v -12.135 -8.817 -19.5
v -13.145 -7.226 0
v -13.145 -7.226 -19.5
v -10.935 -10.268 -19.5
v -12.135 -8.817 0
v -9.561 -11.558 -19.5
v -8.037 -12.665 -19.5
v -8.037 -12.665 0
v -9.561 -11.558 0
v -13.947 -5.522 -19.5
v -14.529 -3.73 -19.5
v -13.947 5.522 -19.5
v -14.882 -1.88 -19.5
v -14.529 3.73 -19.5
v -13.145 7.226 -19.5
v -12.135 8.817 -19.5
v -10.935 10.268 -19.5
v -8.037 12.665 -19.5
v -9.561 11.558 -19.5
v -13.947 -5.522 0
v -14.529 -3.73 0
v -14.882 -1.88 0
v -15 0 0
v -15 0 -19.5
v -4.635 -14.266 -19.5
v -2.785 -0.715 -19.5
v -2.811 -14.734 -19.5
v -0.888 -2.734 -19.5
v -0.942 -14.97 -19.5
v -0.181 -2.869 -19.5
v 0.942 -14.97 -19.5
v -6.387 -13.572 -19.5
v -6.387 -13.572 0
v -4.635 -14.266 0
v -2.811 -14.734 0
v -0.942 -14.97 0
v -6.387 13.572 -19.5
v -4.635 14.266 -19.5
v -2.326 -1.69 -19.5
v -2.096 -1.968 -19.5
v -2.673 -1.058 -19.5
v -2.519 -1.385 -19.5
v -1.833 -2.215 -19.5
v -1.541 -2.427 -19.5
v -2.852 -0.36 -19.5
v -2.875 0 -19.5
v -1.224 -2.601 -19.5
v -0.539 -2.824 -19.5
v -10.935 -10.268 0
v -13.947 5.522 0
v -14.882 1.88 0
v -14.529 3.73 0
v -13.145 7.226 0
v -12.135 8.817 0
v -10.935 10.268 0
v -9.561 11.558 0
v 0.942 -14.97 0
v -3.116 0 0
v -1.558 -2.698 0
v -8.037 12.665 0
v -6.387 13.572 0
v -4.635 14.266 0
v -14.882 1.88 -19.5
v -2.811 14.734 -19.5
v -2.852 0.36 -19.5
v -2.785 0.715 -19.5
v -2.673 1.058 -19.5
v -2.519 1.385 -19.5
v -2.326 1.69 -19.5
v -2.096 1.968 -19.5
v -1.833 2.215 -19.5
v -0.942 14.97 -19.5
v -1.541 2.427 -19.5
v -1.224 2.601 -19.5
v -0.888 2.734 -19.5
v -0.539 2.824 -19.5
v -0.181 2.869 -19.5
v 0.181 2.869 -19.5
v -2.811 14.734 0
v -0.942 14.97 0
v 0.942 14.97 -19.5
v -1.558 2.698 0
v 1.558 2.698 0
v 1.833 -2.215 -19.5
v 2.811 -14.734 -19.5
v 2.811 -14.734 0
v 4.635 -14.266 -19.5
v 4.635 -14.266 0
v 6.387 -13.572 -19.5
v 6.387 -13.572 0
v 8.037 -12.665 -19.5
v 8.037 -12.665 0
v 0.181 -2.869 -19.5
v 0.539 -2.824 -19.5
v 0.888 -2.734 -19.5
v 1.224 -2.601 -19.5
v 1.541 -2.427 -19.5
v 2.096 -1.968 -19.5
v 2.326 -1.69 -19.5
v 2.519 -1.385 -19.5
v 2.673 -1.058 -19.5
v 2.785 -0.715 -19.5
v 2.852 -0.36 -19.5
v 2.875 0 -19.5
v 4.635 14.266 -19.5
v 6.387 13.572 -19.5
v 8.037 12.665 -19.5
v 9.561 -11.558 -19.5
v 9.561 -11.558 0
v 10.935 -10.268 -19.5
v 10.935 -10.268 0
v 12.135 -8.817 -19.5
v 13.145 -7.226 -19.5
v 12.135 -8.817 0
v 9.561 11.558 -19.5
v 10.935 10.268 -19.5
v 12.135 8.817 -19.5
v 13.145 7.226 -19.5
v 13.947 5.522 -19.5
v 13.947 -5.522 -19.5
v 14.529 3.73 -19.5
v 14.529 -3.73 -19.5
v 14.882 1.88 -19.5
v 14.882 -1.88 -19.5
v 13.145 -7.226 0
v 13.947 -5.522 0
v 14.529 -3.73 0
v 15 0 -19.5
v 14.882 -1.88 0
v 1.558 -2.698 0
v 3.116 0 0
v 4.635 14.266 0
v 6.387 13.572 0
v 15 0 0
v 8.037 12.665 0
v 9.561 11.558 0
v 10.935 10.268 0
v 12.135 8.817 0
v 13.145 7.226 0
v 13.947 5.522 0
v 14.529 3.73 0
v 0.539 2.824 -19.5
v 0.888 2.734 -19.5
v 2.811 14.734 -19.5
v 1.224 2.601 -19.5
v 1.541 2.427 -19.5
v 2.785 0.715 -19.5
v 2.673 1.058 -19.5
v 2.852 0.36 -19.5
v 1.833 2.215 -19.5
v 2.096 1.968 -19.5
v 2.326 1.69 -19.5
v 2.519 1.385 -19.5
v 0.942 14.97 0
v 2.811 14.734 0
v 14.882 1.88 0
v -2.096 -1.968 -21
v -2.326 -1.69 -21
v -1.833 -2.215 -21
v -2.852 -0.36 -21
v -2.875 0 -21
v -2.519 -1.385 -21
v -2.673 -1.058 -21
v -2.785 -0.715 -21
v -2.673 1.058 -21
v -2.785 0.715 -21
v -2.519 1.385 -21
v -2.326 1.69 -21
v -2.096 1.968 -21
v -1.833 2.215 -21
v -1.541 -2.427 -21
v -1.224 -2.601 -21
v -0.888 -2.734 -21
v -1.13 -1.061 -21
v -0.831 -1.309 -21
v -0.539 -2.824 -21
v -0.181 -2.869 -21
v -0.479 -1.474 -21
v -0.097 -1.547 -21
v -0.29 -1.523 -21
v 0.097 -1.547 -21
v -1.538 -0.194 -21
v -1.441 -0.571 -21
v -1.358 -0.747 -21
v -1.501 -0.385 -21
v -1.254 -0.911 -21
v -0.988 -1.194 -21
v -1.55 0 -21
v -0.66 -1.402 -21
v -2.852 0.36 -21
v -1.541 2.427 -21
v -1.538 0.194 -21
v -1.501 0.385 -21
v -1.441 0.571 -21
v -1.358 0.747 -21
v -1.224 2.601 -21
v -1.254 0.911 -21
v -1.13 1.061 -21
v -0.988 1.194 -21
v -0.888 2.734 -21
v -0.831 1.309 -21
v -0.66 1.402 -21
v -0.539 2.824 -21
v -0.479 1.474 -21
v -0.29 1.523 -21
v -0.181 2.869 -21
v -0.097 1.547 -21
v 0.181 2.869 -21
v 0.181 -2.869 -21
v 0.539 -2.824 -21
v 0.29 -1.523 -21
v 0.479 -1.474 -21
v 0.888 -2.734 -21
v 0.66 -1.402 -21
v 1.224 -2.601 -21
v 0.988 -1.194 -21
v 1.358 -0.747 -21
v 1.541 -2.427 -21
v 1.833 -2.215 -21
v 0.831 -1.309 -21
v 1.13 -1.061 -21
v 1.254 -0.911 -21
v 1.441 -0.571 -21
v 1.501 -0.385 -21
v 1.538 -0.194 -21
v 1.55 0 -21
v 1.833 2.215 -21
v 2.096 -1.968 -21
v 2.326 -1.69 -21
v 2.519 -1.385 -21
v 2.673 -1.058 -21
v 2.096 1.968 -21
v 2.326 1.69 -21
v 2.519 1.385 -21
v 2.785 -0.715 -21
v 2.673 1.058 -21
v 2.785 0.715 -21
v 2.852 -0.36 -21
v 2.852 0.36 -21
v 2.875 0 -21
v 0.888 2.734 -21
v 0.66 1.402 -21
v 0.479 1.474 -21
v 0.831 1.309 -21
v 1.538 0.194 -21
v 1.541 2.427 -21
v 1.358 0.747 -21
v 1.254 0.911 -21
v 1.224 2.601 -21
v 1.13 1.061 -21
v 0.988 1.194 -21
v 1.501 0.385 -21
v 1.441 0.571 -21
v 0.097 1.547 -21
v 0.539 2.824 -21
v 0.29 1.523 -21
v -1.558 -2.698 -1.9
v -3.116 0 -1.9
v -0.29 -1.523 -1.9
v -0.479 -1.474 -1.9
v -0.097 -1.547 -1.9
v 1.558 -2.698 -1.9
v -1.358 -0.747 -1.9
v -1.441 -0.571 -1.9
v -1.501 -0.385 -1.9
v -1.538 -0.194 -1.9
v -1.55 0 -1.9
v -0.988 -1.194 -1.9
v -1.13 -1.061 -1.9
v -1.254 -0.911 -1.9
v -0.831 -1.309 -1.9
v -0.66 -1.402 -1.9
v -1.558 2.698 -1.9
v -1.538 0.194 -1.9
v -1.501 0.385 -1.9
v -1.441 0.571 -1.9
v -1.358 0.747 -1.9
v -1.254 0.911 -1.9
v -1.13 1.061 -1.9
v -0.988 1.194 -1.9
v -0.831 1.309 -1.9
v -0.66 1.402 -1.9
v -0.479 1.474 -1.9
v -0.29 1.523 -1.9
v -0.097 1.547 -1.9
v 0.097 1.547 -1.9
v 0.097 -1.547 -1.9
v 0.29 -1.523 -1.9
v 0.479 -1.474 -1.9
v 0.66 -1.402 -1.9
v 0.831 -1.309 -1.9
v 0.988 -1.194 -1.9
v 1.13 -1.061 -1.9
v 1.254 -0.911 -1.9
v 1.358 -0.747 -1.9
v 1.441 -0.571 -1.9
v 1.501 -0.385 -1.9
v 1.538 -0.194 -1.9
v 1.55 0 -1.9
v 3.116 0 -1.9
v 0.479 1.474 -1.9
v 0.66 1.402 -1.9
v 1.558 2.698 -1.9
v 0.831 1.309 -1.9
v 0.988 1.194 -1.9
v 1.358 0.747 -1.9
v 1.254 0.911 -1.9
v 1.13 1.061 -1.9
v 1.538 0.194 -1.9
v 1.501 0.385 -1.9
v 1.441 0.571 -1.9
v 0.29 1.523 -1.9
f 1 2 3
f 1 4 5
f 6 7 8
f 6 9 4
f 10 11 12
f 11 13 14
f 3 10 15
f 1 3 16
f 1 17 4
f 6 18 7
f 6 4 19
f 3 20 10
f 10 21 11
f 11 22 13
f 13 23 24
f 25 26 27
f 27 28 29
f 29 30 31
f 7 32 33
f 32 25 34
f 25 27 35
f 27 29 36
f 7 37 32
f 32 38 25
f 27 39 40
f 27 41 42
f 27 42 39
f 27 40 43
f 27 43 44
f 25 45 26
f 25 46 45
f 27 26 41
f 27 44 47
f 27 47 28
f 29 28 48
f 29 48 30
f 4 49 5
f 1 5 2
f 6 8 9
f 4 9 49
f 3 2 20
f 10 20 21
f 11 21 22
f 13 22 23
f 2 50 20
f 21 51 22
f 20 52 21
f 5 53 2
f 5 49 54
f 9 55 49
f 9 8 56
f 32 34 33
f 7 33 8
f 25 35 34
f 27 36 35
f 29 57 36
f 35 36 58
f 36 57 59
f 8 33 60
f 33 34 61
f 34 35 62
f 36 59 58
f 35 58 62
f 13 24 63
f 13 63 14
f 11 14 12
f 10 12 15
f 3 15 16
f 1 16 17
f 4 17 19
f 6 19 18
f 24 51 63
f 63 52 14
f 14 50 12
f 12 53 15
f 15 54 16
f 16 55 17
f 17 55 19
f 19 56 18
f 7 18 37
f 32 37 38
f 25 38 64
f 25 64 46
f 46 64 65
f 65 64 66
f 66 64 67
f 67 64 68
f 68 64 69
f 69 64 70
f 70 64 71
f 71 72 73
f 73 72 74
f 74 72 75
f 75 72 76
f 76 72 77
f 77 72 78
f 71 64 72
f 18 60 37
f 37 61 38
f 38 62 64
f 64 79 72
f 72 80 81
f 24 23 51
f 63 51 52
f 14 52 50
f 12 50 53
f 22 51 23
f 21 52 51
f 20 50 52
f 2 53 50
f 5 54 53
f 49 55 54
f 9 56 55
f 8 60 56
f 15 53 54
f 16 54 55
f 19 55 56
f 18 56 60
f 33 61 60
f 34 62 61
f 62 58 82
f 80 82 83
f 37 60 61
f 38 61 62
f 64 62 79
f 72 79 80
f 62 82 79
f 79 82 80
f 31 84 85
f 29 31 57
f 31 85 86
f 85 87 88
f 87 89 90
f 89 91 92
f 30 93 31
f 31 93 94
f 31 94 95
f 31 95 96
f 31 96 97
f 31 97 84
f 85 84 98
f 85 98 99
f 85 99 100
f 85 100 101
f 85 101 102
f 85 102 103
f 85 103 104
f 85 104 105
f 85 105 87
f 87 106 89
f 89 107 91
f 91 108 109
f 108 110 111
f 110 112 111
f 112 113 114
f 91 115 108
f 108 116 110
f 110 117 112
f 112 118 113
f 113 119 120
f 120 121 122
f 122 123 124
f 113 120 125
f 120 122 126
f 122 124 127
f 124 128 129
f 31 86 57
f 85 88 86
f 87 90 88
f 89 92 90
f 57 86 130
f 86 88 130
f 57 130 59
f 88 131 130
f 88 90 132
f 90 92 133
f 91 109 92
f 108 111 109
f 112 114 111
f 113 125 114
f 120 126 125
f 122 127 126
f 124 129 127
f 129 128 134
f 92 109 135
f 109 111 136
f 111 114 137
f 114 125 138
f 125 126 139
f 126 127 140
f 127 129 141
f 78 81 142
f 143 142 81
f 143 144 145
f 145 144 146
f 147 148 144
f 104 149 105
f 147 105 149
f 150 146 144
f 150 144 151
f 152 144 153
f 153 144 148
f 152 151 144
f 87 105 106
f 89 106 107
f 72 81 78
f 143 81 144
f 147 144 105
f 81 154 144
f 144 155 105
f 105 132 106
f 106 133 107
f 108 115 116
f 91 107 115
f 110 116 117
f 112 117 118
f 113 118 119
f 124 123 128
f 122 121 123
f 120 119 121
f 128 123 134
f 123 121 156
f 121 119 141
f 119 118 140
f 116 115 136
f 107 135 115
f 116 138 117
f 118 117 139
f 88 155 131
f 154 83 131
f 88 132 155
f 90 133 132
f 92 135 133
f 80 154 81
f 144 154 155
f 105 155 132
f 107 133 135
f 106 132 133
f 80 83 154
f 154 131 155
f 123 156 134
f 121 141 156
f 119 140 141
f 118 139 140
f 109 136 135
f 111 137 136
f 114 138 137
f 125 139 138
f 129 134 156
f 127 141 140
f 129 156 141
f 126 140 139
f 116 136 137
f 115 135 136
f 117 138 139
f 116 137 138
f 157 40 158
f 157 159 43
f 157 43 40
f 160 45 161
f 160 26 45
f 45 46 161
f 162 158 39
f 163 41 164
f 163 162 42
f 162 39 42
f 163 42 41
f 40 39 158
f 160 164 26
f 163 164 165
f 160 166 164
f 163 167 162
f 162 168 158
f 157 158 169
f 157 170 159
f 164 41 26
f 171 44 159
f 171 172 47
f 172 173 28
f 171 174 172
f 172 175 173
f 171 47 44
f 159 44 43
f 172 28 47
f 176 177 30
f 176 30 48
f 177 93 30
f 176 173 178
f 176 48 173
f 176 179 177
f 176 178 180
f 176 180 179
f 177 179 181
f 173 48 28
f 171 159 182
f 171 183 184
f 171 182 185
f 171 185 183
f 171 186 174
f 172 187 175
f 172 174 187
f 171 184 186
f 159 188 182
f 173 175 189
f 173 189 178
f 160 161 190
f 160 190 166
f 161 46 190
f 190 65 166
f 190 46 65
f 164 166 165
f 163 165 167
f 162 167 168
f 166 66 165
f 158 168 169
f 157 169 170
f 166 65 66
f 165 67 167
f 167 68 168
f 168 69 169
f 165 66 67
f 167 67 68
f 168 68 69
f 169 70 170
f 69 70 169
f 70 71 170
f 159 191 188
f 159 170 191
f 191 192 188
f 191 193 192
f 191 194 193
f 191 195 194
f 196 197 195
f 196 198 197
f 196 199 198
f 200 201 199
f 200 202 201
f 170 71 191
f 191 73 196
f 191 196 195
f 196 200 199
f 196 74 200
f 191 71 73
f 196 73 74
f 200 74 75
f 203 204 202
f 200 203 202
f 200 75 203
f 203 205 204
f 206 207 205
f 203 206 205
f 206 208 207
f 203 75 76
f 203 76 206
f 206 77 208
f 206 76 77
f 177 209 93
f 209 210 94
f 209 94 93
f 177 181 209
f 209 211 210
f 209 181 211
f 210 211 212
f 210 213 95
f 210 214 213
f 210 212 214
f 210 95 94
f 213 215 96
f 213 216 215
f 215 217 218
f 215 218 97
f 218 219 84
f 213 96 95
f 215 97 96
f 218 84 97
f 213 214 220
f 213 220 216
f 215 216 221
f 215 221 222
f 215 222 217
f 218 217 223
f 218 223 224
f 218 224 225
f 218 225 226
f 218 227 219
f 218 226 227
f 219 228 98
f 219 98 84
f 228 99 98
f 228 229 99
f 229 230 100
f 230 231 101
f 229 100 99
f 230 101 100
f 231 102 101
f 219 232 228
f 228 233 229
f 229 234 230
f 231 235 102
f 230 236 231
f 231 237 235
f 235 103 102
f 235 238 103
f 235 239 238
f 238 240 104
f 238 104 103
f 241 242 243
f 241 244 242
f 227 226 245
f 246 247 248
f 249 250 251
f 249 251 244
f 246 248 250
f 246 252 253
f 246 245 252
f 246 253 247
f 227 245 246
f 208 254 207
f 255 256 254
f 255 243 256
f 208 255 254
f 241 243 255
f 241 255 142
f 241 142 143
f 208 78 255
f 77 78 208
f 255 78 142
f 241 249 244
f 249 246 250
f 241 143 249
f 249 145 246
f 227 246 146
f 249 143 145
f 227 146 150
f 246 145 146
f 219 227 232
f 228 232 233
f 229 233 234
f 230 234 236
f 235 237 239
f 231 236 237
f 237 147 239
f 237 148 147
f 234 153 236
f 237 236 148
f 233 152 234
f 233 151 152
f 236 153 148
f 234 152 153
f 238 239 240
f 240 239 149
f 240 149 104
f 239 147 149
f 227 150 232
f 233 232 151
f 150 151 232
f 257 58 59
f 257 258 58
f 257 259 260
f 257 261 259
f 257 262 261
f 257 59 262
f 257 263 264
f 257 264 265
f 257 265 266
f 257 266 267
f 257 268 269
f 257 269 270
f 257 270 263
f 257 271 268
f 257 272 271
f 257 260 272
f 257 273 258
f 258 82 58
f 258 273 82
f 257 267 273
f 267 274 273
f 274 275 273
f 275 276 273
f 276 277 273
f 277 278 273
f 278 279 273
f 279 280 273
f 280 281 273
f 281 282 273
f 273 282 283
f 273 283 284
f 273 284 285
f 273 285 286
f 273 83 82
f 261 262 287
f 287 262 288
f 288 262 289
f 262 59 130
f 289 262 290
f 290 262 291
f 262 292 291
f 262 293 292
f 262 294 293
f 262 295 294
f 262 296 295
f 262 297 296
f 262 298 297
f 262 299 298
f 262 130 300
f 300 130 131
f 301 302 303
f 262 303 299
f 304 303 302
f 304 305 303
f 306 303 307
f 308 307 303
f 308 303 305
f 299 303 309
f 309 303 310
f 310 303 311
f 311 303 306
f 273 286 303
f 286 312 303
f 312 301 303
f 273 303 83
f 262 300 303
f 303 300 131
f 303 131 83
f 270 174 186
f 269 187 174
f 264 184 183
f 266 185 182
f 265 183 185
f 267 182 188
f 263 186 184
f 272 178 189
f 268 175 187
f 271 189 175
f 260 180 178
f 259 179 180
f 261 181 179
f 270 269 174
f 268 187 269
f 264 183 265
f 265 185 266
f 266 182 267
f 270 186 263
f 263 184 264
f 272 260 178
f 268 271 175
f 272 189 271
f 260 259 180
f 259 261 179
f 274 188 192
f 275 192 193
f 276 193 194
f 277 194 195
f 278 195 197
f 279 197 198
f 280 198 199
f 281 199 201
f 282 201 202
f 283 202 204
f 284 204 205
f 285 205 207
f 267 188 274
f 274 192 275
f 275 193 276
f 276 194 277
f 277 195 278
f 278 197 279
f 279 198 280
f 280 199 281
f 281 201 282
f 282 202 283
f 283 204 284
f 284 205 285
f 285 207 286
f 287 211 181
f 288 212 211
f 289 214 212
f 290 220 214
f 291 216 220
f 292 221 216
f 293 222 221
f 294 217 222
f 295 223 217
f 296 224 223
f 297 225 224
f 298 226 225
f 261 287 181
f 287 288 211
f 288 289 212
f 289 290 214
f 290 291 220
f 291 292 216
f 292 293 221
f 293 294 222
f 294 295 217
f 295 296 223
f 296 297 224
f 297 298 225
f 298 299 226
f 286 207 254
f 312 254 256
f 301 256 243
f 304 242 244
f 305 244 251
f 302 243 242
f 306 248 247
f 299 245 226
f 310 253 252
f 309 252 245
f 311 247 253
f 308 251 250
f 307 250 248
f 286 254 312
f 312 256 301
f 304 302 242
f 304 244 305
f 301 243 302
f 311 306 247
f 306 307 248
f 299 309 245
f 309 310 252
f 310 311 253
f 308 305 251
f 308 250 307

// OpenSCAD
$fn = 50;

difference() {
	union() {
		translate(v = [0, 0, -19.5]) {
			cylinder(h = 19.5, r = 15.0);
		}
		#translate(v = [0, 0, -21.0]) {
			cylinder(h = 21, r = 2.875);
		}
	}
	union() {
		translate(v = [0, 0, 0]) {
			rotate(a = [0, 0, 0]) {
				difference() {
					union() {
						translate(v = [0, 0, -1.9]) {
							linear_extrude(height = 1.9) {
								polygon(points = [[3.1158, 0.0], [1.5579000000000005, 2.698361953111554], [-1.5578999999999994, 2.6983619531115544], [-3.1158, 3.815754496783323e-16], [-1.5579000000000014, -2.6983619531115535], [1.557899999999998, -2.6983619531115552]]);
							}
						}
					}
					union();
				}
			}
		}
		#translate(v = [0, 0, -100.0]) {
			cylinder(h = 200, r = 1.55);
		}
	}
}
